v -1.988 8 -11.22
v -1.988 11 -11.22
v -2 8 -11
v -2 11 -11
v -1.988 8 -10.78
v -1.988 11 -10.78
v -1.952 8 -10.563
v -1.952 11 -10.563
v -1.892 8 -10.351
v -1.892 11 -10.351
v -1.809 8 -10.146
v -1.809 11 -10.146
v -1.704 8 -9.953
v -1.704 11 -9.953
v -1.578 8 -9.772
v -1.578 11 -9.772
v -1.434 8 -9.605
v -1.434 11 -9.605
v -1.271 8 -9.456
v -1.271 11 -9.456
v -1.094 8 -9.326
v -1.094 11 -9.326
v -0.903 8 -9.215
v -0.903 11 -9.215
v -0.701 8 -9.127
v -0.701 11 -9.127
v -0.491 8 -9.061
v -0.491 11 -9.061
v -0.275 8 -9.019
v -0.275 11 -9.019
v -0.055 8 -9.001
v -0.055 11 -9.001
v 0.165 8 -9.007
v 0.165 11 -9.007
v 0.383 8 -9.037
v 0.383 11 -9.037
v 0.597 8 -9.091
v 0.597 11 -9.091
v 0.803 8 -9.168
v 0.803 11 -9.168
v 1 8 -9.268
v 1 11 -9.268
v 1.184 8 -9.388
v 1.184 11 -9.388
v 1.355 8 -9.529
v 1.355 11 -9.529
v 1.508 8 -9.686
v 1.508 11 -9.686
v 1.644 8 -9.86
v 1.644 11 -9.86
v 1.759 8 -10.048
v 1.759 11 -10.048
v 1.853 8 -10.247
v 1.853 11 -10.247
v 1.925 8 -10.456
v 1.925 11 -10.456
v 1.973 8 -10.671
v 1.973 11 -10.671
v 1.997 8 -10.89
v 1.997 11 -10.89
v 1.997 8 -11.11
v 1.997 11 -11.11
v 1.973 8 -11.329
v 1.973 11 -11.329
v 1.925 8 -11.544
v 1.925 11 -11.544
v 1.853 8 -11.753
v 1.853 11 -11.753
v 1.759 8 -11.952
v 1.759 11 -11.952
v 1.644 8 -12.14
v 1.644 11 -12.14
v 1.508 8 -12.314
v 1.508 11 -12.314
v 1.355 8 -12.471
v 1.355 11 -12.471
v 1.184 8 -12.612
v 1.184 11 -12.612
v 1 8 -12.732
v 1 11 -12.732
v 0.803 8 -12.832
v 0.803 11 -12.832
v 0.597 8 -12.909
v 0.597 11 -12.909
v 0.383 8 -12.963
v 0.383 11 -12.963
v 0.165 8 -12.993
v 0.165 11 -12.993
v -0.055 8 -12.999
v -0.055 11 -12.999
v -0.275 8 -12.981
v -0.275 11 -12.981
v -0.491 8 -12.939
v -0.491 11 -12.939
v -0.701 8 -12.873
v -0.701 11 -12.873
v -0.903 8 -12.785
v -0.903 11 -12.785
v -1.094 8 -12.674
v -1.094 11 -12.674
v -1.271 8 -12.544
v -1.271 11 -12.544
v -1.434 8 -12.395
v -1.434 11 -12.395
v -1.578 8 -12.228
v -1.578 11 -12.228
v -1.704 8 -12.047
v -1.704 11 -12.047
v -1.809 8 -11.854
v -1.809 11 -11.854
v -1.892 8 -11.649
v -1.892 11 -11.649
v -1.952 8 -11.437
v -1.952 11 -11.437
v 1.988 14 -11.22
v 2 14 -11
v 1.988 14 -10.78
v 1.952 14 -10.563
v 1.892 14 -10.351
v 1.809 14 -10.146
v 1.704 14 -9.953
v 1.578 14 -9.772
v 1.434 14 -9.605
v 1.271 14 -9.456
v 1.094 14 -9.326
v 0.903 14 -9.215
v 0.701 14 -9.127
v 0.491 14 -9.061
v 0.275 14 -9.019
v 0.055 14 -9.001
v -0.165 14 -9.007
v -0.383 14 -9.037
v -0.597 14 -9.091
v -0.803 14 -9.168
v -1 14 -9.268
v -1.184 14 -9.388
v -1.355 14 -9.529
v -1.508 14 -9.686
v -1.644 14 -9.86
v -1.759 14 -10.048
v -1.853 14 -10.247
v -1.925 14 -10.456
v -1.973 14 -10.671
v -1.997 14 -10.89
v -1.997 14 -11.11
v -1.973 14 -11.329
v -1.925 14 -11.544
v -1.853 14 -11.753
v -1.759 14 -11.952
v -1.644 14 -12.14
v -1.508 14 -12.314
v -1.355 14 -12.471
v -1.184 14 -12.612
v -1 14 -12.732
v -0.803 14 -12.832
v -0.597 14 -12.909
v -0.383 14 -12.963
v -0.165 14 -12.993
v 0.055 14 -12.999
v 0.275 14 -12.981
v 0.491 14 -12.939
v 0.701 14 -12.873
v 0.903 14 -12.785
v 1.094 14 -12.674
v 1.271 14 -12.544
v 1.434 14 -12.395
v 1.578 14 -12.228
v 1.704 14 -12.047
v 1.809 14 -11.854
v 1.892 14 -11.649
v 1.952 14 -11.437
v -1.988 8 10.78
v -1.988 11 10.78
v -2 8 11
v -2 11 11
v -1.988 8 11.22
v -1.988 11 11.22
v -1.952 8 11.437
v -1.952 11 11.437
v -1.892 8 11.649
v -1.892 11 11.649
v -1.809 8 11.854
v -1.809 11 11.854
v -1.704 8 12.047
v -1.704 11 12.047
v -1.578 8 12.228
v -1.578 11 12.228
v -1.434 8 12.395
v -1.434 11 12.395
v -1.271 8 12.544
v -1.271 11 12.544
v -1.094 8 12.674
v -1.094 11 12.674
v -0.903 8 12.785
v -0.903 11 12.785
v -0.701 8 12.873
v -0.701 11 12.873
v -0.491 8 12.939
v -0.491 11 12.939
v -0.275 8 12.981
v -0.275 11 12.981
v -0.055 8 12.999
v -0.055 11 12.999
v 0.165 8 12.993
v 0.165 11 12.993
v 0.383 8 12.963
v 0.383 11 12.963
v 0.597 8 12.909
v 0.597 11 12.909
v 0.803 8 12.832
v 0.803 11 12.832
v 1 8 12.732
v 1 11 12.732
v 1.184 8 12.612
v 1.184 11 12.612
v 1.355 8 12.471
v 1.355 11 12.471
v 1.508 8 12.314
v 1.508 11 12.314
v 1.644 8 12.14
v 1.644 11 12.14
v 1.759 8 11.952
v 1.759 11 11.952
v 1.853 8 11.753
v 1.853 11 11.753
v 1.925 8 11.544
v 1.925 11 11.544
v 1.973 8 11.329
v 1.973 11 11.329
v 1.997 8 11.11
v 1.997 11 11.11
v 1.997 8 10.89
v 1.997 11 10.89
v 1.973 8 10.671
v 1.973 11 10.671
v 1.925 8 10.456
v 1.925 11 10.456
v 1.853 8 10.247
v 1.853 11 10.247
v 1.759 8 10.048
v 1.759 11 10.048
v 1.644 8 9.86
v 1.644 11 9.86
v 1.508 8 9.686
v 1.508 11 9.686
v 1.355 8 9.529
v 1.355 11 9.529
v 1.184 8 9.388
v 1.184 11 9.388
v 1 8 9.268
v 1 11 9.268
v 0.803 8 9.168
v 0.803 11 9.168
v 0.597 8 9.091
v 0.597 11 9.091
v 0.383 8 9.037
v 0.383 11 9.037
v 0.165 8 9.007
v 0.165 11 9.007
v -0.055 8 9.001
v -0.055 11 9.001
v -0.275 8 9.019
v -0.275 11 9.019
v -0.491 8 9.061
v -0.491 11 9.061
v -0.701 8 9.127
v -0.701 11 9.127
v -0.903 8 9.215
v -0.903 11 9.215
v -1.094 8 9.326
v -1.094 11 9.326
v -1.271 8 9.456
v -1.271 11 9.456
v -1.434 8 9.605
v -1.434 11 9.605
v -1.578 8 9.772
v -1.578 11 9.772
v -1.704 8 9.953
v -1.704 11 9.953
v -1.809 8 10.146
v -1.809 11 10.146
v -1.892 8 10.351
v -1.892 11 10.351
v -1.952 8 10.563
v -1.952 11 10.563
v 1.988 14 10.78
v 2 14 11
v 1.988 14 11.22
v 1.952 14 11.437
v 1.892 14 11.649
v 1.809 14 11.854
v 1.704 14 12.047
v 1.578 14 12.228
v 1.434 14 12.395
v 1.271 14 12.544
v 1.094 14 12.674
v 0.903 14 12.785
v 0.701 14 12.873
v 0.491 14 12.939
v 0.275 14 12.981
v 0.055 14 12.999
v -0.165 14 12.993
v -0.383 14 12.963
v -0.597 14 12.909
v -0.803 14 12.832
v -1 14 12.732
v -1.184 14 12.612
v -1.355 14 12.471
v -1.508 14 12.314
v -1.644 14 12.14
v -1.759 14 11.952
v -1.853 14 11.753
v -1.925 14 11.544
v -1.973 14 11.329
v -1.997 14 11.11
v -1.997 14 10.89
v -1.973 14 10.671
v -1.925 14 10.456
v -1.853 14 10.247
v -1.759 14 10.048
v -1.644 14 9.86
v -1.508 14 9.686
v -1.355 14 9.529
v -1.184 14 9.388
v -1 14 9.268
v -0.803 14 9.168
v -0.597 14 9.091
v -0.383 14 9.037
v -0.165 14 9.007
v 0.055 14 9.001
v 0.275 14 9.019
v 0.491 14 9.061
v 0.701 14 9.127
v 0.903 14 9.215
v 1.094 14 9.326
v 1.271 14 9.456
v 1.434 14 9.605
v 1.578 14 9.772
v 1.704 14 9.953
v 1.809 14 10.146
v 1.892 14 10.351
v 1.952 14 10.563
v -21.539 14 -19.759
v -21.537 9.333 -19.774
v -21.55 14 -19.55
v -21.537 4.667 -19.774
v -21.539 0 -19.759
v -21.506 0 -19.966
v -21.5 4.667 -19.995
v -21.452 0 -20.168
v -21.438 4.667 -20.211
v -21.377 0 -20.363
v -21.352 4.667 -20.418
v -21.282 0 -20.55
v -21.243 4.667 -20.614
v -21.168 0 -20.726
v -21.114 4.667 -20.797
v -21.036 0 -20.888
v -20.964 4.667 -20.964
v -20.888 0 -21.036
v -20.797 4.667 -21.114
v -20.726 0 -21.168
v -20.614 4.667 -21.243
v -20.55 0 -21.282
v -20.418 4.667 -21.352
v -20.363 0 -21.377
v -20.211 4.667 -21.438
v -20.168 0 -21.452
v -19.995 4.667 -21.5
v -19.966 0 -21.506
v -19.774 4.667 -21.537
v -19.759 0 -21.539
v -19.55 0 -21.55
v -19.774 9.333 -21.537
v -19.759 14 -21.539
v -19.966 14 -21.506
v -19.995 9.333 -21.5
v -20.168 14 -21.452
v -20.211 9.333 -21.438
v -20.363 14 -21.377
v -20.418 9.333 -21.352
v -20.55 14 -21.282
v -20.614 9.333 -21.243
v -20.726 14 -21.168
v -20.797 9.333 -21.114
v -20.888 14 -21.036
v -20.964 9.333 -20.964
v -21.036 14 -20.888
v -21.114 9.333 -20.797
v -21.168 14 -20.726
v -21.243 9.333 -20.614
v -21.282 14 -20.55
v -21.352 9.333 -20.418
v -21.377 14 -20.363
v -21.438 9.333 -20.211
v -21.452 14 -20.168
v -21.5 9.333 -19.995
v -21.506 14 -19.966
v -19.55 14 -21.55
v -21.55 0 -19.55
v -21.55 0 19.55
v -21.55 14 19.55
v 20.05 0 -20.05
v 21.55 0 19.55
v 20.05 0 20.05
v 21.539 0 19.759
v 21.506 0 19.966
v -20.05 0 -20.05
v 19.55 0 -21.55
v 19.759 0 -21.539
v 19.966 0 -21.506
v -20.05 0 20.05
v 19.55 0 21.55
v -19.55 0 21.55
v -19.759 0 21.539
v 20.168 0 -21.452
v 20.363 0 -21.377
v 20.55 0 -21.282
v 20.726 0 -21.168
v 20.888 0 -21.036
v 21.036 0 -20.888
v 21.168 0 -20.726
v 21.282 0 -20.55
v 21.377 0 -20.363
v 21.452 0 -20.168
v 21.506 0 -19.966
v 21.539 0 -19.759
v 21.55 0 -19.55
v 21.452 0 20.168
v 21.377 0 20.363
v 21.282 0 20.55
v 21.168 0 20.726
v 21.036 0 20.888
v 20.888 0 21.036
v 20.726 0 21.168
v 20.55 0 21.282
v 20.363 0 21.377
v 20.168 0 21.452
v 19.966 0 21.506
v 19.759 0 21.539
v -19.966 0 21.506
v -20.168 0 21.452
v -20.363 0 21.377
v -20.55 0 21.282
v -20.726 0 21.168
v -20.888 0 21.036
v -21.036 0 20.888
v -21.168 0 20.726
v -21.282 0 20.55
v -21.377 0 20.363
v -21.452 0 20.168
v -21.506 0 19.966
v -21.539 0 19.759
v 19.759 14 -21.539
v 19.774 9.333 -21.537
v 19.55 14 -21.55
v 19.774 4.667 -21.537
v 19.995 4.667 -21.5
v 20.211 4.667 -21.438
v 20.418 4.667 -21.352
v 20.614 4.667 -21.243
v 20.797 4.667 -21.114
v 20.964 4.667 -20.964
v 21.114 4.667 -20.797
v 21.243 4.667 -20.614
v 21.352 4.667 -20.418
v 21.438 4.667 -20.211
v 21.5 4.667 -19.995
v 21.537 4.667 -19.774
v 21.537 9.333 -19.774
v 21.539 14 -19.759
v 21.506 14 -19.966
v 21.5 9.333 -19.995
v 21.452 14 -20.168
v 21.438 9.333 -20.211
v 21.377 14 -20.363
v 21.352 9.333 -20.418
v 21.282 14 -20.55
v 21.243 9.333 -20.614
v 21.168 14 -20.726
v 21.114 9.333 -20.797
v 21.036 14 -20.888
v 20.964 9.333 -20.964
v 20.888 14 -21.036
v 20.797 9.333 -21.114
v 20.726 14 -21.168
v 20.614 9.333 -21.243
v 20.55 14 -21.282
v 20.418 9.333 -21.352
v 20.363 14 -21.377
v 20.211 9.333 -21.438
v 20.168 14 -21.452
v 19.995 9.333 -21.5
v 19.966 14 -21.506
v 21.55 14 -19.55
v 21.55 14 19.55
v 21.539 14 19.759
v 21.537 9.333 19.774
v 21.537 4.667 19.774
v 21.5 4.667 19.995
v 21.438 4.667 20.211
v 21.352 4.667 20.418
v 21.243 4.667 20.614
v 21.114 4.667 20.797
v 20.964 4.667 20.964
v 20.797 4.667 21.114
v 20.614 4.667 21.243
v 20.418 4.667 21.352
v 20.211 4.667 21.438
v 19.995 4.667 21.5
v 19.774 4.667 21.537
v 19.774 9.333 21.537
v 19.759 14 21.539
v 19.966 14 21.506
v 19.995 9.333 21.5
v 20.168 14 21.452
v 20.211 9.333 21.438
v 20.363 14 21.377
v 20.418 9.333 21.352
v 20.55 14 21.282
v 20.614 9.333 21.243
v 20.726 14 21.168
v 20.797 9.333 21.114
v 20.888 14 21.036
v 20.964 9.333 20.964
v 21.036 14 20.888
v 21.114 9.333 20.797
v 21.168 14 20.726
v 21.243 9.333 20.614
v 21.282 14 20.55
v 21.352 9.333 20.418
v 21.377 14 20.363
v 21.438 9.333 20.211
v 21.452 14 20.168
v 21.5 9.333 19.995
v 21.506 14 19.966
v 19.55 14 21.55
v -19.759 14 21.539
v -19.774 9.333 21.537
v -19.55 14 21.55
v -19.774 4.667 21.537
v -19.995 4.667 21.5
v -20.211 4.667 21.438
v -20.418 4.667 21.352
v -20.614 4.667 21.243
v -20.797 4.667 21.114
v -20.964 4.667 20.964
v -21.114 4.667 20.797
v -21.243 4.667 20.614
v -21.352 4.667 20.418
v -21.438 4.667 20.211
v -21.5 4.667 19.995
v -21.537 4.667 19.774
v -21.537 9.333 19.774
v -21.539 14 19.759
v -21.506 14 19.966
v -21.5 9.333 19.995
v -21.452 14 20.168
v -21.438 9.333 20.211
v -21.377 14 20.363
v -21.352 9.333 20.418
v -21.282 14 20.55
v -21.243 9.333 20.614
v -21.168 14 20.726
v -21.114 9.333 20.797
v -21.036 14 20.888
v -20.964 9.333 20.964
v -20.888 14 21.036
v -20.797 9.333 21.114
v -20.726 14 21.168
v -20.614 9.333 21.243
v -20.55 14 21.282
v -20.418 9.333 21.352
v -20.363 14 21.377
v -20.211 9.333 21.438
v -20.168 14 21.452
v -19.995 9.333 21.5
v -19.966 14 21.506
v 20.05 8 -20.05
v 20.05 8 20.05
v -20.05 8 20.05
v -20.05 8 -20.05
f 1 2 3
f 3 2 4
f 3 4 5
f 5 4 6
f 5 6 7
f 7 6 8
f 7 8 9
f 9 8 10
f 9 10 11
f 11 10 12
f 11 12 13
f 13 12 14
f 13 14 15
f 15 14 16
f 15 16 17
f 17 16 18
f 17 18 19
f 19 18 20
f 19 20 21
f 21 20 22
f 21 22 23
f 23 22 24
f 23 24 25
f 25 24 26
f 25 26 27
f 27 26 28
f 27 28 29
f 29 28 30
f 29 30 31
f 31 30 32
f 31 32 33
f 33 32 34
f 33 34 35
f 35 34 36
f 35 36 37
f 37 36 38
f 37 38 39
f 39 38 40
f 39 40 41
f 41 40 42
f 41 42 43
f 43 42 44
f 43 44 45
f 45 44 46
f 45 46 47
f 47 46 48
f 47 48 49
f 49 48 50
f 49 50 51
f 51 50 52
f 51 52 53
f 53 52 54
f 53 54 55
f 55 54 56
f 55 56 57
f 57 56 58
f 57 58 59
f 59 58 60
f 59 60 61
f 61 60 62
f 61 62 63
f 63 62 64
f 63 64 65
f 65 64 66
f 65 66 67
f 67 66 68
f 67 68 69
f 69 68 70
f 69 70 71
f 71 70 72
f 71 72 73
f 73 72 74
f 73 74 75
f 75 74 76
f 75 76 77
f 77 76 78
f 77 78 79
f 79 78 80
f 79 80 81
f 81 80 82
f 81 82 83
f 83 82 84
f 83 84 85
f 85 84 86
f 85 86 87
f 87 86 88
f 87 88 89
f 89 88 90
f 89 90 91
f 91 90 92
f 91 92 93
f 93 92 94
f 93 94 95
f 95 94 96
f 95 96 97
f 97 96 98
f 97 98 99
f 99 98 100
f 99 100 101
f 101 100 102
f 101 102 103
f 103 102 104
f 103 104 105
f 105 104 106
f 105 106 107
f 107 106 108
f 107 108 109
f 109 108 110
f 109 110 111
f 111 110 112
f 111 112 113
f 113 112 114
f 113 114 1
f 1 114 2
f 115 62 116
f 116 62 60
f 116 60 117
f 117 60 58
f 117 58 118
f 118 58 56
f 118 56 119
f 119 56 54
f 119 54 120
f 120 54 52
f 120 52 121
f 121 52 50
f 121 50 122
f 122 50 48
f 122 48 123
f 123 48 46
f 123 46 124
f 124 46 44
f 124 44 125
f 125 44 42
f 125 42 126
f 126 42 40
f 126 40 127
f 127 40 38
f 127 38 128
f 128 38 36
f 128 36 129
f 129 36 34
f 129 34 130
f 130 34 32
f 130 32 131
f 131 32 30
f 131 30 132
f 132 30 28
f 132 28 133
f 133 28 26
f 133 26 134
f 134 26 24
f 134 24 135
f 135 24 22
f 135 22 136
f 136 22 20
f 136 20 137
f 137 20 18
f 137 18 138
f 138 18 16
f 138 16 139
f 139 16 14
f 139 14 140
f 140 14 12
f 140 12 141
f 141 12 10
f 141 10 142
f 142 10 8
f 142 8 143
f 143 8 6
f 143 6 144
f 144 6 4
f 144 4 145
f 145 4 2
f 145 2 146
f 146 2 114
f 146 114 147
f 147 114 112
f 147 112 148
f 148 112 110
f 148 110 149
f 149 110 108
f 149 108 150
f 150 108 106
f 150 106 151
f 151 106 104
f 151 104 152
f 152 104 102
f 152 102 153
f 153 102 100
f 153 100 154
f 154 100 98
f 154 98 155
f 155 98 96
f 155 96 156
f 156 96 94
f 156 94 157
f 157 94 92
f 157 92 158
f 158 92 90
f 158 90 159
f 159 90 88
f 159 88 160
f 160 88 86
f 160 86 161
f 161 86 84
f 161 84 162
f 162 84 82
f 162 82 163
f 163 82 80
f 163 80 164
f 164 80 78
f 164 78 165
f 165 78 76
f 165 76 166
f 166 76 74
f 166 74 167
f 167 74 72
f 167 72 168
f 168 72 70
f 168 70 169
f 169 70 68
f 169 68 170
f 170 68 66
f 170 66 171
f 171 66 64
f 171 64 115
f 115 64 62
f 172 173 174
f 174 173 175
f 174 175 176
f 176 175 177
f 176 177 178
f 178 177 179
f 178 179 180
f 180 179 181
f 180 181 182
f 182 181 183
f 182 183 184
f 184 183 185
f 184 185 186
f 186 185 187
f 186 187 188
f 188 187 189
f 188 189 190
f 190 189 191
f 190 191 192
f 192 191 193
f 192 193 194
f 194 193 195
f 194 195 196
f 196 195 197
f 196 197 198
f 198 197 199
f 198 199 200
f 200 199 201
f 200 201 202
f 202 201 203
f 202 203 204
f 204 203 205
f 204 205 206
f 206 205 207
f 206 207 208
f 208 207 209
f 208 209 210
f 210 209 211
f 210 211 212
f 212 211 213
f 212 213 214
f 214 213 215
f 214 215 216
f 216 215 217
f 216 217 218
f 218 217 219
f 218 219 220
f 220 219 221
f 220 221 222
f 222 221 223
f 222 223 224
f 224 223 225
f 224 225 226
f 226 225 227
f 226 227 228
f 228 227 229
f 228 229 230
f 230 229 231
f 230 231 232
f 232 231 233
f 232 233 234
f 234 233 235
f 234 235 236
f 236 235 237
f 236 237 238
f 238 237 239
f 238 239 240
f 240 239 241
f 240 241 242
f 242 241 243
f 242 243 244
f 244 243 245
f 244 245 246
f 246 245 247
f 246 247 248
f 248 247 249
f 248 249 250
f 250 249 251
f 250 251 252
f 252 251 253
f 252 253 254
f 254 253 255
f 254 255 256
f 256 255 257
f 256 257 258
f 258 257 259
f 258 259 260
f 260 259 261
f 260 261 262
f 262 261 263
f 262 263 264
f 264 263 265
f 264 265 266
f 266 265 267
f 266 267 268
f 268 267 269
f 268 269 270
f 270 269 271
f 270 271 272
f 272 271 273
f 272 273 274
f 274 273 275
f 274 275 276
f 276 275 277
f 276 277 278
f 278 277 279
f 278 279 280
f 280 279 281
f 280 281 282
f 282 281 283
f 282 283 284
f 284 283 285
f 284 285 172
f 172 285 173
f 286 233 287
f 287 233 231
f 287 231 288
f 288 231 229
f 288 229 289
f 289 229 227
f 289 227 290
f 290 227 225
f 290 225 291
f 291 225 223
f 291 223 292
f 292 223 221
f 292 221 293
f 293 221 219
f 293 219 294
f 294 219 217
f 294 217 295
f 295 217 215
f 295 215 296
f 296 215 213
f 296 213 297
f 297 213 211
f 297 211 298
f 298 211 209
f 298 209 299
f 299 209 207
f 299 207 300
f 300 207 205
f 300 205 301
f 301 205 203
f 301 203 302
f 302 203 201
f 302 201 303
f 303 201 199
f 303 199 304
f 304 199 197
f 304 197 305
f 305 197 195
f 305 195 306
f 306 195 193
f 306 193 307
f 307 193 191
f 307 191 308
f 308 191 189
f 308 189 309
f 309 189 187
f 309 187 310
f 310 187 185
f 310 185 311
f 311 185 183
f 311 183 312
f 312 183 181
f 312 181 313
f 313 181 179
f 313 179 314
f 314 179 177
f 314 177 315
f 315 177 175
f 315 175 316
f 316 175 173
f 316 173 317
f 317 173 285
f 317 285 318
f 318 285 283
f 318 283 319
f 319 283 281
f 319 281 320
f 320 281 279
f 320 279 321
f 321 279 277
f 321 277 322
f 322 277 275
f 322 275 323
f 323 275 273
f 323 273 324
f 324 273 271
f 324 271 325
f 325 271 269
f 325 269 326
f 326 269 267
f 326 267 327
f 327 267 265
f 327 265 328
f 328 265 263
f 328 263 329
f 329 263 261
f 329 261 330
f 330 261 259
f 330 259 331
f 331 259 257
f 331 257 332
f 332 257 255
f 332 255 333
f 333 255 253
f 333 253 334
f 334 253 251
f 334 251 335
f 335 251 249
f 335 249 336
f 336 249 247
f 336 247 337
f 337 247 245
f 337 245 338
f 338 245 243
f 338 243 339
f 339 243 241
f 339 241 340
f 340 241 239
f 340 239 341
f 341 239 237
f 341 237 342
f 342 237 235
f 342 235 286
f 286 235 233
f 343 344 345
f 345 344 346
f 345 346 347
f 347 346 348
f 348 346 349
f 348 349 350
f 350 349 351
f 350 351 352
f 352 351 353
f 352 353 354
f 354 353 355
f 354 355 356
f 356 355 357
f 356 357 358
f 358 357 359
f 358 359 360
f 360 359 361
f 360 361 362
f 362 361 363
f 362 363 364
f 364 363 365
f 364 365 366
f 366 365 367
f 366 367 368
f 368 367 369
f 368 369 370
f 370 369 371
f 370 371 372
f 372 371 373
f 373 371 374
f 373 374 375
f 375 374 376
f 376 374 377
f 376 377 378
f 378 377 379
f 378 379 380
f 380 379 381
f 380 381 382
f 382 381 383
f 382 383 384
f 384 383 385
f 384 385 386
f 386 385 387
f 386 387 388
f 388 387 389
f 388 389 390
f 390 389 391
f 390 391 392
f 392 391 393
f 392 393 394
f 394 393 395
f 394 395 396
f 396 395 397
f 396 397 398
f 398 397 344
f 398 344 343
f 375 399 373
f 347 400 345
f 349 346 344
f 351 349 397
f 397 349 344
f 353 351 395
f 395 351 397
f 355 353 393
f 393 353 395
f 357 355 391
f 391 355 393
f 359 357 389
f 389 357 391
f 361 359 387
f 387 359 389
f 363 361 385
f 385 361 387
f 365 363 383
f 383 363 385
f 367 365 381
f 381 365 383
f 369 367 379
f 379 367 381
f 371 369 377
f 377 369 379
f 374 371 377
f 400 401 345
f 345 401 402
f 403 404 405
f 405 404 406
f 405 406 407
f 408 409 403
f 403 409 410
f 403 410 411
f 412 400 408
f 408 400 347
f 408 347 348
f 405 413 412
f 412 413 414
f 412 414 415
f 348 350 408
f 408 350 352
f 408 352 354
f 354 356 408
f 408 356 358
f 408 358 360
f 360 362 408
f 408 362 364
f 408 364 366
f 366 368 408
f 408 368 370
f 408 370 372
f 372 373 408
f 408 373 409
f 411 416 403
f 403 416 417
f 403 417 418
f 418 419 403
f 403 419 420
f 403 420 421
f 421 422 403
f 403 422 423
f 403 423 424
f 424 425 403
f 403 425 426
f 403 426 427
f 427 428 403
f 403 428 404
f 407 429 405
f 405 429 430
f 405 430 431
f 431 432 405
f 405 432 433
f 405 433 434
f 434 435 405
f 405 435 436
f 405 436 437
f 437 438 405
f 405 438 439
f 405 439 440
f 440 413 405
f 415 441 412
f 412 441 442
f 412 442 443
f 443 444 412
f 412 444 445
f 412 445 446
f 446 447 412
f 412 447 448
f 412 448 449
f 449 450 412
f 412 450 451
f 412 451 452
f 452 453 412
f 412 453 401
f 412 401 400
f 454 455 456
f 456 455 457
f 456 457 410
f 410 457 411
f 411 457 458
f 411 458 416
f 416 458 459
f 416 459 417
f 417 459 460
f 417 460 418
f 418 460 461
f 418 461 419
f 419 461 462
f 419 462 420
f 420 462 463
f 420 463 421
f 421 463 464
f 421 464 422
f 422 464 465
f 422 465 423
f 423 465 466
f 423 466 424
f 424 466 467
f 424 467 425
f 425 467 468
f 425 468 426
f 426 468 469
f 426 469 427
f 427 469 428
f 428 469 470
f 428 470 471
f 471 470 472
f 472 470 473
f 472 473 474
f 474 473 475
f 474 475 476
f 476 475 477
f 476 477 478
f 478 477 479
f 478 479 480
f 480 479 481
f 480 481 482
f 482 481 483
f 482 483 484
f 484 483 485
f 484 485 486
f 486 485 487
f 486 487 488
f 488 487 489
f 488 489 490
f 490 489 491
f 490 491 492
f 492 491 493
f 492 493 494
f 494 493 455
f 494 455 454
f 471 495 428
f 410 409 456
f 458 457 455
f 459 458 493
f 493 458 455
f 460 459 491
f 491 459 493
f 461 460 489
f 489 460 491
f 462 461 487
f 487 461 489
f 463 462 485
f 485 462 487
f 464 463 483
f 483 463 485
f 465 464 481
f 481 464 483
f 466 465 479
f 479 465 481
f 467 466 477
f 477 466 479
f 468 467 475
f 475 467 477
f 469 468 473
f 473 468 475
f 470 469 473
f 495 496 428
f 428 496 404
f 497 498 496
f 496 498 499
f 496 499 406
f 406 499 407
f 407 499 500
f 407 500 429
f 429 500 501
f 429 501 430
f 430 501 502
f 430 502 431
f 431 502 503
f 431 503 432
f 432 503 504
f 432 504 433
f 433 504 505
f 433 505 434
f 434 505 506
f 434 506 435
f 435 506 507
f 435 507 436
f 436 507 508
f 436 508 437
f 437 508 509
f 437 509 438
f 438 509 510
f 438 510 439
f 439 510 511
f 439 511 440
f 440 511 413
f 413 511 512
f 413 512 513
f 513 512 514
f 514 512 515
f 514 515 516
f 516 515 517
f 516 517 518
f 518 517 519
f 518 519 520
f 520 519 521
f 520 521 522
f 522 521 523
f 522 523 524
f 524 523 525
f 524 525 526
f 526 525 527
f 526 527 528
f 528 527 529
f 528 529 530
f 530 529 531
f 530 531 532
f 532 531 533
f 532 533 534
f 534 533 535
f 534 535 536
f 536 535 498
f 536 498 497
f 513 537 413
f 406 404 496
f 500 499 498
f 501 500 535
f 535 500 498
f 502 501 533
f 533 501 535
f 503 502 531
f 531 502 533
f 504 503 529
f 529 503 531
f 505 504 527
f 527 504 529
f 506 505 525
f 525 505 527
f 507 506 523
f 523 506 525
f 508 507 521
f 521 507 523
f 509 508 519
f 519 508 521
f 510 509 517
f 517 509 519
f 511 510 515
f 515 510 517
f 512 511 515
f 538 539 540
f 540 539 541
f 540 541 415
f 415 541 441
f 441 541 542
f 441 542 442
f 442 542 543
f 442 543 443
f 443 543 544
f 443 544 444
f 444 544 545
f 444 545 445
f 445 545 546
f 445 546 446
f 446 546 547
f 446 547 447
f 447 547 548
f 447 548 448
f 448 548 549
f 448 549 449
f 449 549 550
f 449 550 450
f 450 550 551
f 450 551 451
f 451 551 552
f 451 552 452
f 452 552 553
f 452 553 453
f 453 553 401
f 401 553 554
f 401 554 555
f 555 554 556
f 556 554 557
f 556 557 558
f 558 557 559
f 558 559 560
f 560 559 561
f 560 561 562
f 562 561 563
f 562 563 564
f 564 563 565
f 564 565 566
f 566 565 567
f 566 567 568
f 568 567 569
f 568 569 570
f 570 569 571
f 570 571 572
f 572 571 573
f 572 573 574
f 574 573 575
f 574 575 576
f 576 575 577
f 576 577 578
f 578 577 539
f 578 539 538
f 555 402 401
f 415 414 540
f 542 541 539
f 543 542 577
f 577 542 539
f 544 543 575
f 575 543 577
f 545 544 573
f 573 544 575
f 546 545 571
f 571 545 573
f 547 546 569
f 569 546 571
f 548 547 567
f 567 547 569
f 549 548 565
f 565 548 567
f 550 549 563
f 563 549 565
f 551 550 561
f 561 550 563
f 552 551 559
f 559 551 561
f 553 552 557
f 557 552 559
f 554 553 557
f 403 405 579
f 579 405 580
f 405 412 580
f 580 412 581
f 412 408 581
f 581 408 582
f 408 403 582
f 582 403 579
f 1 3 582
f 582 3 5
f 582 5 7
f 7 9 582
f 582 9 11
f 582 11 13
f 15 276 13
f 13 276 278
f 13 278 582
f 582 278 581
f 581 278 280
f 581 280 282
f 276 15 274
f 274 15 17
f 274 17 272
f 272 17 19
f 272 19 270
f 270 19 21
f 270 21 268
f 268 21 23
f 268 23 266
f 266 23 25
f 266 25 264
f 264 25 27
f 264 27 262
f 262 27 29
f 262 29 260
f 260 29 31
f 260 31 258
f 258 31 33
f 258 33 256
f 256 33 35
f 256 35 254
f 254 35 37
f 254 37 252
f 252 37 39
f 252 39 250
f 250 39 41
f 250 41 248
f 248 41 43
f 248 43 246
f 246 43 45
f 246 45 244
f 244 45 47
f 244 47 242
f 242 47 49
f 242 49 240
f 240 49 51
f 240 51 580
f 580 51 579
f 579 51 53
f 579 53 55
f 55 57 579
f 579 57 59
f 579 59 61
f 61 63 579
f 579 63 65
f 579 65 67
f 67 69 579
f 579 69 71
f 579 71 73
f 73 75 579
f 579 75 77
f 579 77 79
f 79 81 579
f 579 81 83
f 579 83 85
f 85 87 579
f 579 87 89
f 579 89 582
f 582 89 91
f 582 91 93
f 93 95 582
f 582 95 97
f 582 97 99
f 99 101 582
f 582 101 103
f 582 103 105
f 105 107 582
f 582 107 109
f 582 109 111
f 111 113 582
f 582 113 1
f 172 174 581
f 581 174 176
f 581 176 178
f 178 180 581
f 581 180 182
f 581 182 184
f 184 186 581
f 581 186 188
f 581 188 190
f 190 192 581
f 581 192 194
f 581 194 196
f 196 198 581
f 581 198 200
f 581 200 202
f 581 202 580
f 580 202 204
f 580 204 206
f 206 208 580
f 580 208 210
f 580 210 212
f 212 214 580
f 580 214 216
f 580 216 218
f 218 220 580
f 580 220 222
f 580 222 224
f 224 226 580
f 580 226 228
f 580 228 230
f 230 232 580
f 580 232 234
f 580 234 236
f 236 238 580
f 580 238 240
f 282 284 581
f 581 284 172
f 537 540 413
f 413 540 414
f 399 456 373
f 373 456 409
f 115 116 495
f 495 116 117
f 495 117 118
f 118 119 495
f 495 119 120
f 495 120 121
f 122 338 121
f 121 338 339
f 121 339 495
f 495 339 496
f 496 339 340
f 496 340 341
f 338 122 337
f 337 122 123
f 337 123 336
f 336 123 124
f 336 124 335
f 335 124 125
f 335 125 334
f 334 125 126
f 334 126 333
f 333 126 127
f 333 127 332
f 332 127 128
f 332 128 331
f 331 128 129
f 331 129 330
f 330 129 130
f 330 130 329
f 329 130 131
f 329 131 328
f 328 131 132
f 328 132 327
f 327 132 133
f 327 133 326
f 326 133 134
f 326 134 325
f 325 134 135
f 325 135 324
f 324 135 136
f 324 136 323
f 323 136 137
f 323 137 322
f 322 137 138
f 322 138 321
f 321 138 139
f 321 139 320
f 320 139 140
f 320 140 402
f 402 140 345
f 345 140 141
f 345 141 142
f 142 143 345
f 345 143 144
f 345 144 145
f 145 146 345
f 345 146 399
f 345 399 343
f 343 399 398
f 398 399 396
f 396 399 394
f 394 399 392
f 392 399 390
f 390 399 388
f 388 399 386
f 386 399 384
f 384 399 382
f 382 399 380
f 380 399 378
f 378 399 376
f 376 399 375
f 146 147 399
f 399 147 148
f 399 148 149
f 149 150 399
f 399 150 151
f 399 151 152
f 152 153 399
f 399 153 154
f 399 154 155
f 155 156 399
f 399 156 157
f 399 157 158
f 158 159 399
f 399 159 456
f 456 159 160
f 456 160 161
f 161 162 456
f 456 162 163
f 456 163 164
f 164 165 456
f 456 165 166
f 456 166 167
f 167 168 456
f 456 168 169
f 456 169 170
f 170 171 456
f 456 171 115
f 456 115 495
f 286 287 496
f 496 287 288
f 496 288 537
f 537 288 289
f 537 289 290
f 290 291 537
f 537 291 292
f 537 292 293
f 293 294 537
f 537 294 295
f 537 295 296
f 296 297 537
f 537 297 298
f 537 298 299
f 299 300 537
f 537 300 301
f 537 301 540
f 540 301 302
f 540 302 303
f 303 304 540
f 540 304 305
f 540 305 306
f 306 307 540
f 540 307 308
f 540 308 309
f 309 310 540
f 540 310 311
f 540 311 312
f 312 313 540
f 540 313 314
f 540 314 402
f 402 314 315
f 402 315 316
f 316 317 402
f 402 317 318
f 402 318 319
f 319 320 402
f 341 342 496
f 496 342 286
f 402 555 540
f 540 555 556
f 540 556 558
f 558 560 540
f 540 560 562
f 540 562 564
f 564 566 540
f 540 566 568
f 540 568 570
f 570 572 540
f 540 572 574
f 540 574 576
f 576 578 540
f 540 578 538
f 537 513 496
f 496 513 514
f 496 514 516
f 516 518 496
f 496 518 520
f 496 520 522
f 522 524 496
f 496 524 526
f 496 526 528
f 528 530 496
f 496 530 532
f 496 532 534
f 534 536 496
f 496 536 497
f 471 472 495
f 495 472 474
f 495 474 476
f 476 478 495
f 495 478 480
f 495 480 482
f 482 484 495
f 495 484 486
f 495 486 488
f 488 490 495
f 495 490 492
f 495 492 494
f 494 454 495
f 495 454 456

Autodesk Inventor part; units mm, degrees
ref_plane "YZ Plane" through (0, 0, 0) normal (1, 0, 0) x (0, 1, 0)
ref_plane "XZ Plane" through (0, 0, 0) normal (0, 1, 0) x (-1, 0, 0)
ref_plane "XY Plane" through (0, 0, 0) normal (0, 0, 1) x (1, 0, 0)
sketch "Sketch1" plane through (0, 0, 0) normal (0, 1, 0) x (-1, 0, 0)
  line L0 (21.55, 21.55) -> (-21.55, 21.55)
  line L1 (-21.55, 21.55) -> (-21.55, -21.55)
  line L2 (-21.55, -21.55) -> (21.55, -21.55)
  line L3 (21.55, -21.55) -> (21.55, 21.55)
  line L4 (21.55, 21.55) -> (-21.55, -21.55) construction
  line L5 (-21.55, 21.55) -> (21.55, -21.55) construction
  point P0 (0, 0)
  dimension "d0" = 43.1
  dimension "d1" = 43.1
extrude "Extrusion1" add sketch "Sketch1" along normal blind 14
sketch "Sketch2" plane through (0, 0, 0) normal (0, -1, 0) x (1, 0, 0)
  line L0 (-20.05, 20.05) -> (20.05, 20.05)
  line L1 (20.05, 20.05) -> (20.05, -20.05)
  line L2 (20.05, -20.05) -> (-20.05, -20.05)
  line L3 (-20.05, -20.05) -> (-20.05, 20.05)
  line L4 (-20.05, 20.05) -> (20.05, -20.05) construction
  line L5 (20.05, 20.05) -> (-20.05, -20.05) construction
  point P0 (0, 0)
  dimension "d4" = 40.1
  dimension "d5" = 40.1
extrude "Extrusion2" cut sketch "Sketch2" against normal blind 8
fillet "Fillet1" radius 2 4 edges at (-21.55, 7, 21.55) (21.55, 7, 21.55) (21.55, 7, -21.55) (-21.55, 7, -21.55)
sketch "Sketch3" plane through (0, 14, 0) normal (0, 1, 0) x (1, 0, 0)
  line L0 (0, 30.17) -> (0, -30.17) projected
  circle A0 centre (0, -11) radius 2
  circle A1 centre (0, 11) radius 2
  line L1 (30.17, 0) -> (-30.17, 0) projected
  point P0 (0, 0)
  dimension "d9" = 4
  dimension "d10" = 22
extrude "Extrusion3" cut sketch "Sketch3" against normal through all
equation "\"d1\" = d0"
equation "\"d5\" = d4"
properties part number "31_Y-Motor_cable_holder"
